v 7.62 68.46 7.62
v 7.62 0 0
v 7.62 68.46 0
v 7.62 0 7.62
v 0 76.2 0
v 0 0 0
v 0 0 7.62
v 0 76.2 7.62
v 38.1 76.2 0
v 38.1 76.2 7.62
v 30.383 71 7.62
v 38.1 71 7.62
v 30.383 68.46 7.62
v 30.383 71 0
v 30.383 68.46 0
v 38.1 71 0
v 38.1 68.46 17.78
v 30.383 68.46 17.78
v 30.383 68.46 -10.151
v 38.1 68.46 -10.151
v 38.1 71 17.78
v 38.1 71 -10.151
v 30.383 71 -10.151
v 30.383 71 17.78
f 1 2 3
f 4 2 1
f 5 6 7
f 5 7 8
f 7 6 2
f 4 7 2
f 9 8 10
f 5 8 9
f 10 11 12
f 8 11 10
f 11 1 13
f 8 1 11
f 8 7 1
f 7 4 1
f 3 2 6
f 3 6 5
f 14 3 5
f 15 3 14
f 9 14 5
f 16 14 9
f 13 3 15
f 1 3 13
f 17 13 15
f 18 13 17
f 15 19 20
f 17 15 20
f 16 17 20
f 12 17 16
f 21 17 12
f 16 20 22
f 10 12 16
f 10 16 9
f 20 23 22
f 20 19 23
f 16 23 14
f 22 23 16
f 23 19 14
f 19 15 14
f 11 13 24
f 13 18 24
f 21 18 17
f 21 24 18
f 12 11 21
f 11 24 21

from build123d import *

# Parameters (mm, degrees)
SKETCH1_W           = 7.62
SKETCH1_H           = 76.2
BOSS_EXTRUDE1_DEPTH = 7.62
SKETCH3_W           = 7.62
SKETCH3_H           = 7.740164582
BOSS_EXTRUDE3_DEPTH = 30.48
BOSS_EXTRUDE4_DEPTH = 2.54


with BuildPart() as part:
    # Sketch1 → Boss-Extrude1 (new body)
    with BuildSketch(Plane.XY):
        with Locations((3.81, 38.1)):
            Rectangle(SKETCH1_W, SKETCH1_H)
    extrude(amount=BOSS_EXTRUDE1_DEPTH)

    # Sketch3 → Boss-Extrude3 (add)
    with BuildSketch(Plane(origin=(7.62, 0, 0), x_dir=(0, 0, -1), z_dir=(1, 0, 0))):
        with Locations((-3.81, 72.329917709)):
            Rectangle(SKETCH3_W, SKETCH3_H)
    extrude(amount=BOSS_EXTRUDE3_DEPTH)

    # Sketch6 → Boss-Extrude4 (add)
    with BuildSketch(Plane(origin=(0, 68.459835418, 0), x_dir=(-1, 0, 0), z_dir=(0, -1, 0))):
        Polygon((-38.1, -7.62), (-38.1, -17.78), (-30.382577063, -17.78), (-30.382577063, 10.150655404), (-38.1, 10.150655404), (-38.1, 0), align=None)
    extrude(amount=-BOSS_EXTRUDE4_DEPTH)


solid = part.part
